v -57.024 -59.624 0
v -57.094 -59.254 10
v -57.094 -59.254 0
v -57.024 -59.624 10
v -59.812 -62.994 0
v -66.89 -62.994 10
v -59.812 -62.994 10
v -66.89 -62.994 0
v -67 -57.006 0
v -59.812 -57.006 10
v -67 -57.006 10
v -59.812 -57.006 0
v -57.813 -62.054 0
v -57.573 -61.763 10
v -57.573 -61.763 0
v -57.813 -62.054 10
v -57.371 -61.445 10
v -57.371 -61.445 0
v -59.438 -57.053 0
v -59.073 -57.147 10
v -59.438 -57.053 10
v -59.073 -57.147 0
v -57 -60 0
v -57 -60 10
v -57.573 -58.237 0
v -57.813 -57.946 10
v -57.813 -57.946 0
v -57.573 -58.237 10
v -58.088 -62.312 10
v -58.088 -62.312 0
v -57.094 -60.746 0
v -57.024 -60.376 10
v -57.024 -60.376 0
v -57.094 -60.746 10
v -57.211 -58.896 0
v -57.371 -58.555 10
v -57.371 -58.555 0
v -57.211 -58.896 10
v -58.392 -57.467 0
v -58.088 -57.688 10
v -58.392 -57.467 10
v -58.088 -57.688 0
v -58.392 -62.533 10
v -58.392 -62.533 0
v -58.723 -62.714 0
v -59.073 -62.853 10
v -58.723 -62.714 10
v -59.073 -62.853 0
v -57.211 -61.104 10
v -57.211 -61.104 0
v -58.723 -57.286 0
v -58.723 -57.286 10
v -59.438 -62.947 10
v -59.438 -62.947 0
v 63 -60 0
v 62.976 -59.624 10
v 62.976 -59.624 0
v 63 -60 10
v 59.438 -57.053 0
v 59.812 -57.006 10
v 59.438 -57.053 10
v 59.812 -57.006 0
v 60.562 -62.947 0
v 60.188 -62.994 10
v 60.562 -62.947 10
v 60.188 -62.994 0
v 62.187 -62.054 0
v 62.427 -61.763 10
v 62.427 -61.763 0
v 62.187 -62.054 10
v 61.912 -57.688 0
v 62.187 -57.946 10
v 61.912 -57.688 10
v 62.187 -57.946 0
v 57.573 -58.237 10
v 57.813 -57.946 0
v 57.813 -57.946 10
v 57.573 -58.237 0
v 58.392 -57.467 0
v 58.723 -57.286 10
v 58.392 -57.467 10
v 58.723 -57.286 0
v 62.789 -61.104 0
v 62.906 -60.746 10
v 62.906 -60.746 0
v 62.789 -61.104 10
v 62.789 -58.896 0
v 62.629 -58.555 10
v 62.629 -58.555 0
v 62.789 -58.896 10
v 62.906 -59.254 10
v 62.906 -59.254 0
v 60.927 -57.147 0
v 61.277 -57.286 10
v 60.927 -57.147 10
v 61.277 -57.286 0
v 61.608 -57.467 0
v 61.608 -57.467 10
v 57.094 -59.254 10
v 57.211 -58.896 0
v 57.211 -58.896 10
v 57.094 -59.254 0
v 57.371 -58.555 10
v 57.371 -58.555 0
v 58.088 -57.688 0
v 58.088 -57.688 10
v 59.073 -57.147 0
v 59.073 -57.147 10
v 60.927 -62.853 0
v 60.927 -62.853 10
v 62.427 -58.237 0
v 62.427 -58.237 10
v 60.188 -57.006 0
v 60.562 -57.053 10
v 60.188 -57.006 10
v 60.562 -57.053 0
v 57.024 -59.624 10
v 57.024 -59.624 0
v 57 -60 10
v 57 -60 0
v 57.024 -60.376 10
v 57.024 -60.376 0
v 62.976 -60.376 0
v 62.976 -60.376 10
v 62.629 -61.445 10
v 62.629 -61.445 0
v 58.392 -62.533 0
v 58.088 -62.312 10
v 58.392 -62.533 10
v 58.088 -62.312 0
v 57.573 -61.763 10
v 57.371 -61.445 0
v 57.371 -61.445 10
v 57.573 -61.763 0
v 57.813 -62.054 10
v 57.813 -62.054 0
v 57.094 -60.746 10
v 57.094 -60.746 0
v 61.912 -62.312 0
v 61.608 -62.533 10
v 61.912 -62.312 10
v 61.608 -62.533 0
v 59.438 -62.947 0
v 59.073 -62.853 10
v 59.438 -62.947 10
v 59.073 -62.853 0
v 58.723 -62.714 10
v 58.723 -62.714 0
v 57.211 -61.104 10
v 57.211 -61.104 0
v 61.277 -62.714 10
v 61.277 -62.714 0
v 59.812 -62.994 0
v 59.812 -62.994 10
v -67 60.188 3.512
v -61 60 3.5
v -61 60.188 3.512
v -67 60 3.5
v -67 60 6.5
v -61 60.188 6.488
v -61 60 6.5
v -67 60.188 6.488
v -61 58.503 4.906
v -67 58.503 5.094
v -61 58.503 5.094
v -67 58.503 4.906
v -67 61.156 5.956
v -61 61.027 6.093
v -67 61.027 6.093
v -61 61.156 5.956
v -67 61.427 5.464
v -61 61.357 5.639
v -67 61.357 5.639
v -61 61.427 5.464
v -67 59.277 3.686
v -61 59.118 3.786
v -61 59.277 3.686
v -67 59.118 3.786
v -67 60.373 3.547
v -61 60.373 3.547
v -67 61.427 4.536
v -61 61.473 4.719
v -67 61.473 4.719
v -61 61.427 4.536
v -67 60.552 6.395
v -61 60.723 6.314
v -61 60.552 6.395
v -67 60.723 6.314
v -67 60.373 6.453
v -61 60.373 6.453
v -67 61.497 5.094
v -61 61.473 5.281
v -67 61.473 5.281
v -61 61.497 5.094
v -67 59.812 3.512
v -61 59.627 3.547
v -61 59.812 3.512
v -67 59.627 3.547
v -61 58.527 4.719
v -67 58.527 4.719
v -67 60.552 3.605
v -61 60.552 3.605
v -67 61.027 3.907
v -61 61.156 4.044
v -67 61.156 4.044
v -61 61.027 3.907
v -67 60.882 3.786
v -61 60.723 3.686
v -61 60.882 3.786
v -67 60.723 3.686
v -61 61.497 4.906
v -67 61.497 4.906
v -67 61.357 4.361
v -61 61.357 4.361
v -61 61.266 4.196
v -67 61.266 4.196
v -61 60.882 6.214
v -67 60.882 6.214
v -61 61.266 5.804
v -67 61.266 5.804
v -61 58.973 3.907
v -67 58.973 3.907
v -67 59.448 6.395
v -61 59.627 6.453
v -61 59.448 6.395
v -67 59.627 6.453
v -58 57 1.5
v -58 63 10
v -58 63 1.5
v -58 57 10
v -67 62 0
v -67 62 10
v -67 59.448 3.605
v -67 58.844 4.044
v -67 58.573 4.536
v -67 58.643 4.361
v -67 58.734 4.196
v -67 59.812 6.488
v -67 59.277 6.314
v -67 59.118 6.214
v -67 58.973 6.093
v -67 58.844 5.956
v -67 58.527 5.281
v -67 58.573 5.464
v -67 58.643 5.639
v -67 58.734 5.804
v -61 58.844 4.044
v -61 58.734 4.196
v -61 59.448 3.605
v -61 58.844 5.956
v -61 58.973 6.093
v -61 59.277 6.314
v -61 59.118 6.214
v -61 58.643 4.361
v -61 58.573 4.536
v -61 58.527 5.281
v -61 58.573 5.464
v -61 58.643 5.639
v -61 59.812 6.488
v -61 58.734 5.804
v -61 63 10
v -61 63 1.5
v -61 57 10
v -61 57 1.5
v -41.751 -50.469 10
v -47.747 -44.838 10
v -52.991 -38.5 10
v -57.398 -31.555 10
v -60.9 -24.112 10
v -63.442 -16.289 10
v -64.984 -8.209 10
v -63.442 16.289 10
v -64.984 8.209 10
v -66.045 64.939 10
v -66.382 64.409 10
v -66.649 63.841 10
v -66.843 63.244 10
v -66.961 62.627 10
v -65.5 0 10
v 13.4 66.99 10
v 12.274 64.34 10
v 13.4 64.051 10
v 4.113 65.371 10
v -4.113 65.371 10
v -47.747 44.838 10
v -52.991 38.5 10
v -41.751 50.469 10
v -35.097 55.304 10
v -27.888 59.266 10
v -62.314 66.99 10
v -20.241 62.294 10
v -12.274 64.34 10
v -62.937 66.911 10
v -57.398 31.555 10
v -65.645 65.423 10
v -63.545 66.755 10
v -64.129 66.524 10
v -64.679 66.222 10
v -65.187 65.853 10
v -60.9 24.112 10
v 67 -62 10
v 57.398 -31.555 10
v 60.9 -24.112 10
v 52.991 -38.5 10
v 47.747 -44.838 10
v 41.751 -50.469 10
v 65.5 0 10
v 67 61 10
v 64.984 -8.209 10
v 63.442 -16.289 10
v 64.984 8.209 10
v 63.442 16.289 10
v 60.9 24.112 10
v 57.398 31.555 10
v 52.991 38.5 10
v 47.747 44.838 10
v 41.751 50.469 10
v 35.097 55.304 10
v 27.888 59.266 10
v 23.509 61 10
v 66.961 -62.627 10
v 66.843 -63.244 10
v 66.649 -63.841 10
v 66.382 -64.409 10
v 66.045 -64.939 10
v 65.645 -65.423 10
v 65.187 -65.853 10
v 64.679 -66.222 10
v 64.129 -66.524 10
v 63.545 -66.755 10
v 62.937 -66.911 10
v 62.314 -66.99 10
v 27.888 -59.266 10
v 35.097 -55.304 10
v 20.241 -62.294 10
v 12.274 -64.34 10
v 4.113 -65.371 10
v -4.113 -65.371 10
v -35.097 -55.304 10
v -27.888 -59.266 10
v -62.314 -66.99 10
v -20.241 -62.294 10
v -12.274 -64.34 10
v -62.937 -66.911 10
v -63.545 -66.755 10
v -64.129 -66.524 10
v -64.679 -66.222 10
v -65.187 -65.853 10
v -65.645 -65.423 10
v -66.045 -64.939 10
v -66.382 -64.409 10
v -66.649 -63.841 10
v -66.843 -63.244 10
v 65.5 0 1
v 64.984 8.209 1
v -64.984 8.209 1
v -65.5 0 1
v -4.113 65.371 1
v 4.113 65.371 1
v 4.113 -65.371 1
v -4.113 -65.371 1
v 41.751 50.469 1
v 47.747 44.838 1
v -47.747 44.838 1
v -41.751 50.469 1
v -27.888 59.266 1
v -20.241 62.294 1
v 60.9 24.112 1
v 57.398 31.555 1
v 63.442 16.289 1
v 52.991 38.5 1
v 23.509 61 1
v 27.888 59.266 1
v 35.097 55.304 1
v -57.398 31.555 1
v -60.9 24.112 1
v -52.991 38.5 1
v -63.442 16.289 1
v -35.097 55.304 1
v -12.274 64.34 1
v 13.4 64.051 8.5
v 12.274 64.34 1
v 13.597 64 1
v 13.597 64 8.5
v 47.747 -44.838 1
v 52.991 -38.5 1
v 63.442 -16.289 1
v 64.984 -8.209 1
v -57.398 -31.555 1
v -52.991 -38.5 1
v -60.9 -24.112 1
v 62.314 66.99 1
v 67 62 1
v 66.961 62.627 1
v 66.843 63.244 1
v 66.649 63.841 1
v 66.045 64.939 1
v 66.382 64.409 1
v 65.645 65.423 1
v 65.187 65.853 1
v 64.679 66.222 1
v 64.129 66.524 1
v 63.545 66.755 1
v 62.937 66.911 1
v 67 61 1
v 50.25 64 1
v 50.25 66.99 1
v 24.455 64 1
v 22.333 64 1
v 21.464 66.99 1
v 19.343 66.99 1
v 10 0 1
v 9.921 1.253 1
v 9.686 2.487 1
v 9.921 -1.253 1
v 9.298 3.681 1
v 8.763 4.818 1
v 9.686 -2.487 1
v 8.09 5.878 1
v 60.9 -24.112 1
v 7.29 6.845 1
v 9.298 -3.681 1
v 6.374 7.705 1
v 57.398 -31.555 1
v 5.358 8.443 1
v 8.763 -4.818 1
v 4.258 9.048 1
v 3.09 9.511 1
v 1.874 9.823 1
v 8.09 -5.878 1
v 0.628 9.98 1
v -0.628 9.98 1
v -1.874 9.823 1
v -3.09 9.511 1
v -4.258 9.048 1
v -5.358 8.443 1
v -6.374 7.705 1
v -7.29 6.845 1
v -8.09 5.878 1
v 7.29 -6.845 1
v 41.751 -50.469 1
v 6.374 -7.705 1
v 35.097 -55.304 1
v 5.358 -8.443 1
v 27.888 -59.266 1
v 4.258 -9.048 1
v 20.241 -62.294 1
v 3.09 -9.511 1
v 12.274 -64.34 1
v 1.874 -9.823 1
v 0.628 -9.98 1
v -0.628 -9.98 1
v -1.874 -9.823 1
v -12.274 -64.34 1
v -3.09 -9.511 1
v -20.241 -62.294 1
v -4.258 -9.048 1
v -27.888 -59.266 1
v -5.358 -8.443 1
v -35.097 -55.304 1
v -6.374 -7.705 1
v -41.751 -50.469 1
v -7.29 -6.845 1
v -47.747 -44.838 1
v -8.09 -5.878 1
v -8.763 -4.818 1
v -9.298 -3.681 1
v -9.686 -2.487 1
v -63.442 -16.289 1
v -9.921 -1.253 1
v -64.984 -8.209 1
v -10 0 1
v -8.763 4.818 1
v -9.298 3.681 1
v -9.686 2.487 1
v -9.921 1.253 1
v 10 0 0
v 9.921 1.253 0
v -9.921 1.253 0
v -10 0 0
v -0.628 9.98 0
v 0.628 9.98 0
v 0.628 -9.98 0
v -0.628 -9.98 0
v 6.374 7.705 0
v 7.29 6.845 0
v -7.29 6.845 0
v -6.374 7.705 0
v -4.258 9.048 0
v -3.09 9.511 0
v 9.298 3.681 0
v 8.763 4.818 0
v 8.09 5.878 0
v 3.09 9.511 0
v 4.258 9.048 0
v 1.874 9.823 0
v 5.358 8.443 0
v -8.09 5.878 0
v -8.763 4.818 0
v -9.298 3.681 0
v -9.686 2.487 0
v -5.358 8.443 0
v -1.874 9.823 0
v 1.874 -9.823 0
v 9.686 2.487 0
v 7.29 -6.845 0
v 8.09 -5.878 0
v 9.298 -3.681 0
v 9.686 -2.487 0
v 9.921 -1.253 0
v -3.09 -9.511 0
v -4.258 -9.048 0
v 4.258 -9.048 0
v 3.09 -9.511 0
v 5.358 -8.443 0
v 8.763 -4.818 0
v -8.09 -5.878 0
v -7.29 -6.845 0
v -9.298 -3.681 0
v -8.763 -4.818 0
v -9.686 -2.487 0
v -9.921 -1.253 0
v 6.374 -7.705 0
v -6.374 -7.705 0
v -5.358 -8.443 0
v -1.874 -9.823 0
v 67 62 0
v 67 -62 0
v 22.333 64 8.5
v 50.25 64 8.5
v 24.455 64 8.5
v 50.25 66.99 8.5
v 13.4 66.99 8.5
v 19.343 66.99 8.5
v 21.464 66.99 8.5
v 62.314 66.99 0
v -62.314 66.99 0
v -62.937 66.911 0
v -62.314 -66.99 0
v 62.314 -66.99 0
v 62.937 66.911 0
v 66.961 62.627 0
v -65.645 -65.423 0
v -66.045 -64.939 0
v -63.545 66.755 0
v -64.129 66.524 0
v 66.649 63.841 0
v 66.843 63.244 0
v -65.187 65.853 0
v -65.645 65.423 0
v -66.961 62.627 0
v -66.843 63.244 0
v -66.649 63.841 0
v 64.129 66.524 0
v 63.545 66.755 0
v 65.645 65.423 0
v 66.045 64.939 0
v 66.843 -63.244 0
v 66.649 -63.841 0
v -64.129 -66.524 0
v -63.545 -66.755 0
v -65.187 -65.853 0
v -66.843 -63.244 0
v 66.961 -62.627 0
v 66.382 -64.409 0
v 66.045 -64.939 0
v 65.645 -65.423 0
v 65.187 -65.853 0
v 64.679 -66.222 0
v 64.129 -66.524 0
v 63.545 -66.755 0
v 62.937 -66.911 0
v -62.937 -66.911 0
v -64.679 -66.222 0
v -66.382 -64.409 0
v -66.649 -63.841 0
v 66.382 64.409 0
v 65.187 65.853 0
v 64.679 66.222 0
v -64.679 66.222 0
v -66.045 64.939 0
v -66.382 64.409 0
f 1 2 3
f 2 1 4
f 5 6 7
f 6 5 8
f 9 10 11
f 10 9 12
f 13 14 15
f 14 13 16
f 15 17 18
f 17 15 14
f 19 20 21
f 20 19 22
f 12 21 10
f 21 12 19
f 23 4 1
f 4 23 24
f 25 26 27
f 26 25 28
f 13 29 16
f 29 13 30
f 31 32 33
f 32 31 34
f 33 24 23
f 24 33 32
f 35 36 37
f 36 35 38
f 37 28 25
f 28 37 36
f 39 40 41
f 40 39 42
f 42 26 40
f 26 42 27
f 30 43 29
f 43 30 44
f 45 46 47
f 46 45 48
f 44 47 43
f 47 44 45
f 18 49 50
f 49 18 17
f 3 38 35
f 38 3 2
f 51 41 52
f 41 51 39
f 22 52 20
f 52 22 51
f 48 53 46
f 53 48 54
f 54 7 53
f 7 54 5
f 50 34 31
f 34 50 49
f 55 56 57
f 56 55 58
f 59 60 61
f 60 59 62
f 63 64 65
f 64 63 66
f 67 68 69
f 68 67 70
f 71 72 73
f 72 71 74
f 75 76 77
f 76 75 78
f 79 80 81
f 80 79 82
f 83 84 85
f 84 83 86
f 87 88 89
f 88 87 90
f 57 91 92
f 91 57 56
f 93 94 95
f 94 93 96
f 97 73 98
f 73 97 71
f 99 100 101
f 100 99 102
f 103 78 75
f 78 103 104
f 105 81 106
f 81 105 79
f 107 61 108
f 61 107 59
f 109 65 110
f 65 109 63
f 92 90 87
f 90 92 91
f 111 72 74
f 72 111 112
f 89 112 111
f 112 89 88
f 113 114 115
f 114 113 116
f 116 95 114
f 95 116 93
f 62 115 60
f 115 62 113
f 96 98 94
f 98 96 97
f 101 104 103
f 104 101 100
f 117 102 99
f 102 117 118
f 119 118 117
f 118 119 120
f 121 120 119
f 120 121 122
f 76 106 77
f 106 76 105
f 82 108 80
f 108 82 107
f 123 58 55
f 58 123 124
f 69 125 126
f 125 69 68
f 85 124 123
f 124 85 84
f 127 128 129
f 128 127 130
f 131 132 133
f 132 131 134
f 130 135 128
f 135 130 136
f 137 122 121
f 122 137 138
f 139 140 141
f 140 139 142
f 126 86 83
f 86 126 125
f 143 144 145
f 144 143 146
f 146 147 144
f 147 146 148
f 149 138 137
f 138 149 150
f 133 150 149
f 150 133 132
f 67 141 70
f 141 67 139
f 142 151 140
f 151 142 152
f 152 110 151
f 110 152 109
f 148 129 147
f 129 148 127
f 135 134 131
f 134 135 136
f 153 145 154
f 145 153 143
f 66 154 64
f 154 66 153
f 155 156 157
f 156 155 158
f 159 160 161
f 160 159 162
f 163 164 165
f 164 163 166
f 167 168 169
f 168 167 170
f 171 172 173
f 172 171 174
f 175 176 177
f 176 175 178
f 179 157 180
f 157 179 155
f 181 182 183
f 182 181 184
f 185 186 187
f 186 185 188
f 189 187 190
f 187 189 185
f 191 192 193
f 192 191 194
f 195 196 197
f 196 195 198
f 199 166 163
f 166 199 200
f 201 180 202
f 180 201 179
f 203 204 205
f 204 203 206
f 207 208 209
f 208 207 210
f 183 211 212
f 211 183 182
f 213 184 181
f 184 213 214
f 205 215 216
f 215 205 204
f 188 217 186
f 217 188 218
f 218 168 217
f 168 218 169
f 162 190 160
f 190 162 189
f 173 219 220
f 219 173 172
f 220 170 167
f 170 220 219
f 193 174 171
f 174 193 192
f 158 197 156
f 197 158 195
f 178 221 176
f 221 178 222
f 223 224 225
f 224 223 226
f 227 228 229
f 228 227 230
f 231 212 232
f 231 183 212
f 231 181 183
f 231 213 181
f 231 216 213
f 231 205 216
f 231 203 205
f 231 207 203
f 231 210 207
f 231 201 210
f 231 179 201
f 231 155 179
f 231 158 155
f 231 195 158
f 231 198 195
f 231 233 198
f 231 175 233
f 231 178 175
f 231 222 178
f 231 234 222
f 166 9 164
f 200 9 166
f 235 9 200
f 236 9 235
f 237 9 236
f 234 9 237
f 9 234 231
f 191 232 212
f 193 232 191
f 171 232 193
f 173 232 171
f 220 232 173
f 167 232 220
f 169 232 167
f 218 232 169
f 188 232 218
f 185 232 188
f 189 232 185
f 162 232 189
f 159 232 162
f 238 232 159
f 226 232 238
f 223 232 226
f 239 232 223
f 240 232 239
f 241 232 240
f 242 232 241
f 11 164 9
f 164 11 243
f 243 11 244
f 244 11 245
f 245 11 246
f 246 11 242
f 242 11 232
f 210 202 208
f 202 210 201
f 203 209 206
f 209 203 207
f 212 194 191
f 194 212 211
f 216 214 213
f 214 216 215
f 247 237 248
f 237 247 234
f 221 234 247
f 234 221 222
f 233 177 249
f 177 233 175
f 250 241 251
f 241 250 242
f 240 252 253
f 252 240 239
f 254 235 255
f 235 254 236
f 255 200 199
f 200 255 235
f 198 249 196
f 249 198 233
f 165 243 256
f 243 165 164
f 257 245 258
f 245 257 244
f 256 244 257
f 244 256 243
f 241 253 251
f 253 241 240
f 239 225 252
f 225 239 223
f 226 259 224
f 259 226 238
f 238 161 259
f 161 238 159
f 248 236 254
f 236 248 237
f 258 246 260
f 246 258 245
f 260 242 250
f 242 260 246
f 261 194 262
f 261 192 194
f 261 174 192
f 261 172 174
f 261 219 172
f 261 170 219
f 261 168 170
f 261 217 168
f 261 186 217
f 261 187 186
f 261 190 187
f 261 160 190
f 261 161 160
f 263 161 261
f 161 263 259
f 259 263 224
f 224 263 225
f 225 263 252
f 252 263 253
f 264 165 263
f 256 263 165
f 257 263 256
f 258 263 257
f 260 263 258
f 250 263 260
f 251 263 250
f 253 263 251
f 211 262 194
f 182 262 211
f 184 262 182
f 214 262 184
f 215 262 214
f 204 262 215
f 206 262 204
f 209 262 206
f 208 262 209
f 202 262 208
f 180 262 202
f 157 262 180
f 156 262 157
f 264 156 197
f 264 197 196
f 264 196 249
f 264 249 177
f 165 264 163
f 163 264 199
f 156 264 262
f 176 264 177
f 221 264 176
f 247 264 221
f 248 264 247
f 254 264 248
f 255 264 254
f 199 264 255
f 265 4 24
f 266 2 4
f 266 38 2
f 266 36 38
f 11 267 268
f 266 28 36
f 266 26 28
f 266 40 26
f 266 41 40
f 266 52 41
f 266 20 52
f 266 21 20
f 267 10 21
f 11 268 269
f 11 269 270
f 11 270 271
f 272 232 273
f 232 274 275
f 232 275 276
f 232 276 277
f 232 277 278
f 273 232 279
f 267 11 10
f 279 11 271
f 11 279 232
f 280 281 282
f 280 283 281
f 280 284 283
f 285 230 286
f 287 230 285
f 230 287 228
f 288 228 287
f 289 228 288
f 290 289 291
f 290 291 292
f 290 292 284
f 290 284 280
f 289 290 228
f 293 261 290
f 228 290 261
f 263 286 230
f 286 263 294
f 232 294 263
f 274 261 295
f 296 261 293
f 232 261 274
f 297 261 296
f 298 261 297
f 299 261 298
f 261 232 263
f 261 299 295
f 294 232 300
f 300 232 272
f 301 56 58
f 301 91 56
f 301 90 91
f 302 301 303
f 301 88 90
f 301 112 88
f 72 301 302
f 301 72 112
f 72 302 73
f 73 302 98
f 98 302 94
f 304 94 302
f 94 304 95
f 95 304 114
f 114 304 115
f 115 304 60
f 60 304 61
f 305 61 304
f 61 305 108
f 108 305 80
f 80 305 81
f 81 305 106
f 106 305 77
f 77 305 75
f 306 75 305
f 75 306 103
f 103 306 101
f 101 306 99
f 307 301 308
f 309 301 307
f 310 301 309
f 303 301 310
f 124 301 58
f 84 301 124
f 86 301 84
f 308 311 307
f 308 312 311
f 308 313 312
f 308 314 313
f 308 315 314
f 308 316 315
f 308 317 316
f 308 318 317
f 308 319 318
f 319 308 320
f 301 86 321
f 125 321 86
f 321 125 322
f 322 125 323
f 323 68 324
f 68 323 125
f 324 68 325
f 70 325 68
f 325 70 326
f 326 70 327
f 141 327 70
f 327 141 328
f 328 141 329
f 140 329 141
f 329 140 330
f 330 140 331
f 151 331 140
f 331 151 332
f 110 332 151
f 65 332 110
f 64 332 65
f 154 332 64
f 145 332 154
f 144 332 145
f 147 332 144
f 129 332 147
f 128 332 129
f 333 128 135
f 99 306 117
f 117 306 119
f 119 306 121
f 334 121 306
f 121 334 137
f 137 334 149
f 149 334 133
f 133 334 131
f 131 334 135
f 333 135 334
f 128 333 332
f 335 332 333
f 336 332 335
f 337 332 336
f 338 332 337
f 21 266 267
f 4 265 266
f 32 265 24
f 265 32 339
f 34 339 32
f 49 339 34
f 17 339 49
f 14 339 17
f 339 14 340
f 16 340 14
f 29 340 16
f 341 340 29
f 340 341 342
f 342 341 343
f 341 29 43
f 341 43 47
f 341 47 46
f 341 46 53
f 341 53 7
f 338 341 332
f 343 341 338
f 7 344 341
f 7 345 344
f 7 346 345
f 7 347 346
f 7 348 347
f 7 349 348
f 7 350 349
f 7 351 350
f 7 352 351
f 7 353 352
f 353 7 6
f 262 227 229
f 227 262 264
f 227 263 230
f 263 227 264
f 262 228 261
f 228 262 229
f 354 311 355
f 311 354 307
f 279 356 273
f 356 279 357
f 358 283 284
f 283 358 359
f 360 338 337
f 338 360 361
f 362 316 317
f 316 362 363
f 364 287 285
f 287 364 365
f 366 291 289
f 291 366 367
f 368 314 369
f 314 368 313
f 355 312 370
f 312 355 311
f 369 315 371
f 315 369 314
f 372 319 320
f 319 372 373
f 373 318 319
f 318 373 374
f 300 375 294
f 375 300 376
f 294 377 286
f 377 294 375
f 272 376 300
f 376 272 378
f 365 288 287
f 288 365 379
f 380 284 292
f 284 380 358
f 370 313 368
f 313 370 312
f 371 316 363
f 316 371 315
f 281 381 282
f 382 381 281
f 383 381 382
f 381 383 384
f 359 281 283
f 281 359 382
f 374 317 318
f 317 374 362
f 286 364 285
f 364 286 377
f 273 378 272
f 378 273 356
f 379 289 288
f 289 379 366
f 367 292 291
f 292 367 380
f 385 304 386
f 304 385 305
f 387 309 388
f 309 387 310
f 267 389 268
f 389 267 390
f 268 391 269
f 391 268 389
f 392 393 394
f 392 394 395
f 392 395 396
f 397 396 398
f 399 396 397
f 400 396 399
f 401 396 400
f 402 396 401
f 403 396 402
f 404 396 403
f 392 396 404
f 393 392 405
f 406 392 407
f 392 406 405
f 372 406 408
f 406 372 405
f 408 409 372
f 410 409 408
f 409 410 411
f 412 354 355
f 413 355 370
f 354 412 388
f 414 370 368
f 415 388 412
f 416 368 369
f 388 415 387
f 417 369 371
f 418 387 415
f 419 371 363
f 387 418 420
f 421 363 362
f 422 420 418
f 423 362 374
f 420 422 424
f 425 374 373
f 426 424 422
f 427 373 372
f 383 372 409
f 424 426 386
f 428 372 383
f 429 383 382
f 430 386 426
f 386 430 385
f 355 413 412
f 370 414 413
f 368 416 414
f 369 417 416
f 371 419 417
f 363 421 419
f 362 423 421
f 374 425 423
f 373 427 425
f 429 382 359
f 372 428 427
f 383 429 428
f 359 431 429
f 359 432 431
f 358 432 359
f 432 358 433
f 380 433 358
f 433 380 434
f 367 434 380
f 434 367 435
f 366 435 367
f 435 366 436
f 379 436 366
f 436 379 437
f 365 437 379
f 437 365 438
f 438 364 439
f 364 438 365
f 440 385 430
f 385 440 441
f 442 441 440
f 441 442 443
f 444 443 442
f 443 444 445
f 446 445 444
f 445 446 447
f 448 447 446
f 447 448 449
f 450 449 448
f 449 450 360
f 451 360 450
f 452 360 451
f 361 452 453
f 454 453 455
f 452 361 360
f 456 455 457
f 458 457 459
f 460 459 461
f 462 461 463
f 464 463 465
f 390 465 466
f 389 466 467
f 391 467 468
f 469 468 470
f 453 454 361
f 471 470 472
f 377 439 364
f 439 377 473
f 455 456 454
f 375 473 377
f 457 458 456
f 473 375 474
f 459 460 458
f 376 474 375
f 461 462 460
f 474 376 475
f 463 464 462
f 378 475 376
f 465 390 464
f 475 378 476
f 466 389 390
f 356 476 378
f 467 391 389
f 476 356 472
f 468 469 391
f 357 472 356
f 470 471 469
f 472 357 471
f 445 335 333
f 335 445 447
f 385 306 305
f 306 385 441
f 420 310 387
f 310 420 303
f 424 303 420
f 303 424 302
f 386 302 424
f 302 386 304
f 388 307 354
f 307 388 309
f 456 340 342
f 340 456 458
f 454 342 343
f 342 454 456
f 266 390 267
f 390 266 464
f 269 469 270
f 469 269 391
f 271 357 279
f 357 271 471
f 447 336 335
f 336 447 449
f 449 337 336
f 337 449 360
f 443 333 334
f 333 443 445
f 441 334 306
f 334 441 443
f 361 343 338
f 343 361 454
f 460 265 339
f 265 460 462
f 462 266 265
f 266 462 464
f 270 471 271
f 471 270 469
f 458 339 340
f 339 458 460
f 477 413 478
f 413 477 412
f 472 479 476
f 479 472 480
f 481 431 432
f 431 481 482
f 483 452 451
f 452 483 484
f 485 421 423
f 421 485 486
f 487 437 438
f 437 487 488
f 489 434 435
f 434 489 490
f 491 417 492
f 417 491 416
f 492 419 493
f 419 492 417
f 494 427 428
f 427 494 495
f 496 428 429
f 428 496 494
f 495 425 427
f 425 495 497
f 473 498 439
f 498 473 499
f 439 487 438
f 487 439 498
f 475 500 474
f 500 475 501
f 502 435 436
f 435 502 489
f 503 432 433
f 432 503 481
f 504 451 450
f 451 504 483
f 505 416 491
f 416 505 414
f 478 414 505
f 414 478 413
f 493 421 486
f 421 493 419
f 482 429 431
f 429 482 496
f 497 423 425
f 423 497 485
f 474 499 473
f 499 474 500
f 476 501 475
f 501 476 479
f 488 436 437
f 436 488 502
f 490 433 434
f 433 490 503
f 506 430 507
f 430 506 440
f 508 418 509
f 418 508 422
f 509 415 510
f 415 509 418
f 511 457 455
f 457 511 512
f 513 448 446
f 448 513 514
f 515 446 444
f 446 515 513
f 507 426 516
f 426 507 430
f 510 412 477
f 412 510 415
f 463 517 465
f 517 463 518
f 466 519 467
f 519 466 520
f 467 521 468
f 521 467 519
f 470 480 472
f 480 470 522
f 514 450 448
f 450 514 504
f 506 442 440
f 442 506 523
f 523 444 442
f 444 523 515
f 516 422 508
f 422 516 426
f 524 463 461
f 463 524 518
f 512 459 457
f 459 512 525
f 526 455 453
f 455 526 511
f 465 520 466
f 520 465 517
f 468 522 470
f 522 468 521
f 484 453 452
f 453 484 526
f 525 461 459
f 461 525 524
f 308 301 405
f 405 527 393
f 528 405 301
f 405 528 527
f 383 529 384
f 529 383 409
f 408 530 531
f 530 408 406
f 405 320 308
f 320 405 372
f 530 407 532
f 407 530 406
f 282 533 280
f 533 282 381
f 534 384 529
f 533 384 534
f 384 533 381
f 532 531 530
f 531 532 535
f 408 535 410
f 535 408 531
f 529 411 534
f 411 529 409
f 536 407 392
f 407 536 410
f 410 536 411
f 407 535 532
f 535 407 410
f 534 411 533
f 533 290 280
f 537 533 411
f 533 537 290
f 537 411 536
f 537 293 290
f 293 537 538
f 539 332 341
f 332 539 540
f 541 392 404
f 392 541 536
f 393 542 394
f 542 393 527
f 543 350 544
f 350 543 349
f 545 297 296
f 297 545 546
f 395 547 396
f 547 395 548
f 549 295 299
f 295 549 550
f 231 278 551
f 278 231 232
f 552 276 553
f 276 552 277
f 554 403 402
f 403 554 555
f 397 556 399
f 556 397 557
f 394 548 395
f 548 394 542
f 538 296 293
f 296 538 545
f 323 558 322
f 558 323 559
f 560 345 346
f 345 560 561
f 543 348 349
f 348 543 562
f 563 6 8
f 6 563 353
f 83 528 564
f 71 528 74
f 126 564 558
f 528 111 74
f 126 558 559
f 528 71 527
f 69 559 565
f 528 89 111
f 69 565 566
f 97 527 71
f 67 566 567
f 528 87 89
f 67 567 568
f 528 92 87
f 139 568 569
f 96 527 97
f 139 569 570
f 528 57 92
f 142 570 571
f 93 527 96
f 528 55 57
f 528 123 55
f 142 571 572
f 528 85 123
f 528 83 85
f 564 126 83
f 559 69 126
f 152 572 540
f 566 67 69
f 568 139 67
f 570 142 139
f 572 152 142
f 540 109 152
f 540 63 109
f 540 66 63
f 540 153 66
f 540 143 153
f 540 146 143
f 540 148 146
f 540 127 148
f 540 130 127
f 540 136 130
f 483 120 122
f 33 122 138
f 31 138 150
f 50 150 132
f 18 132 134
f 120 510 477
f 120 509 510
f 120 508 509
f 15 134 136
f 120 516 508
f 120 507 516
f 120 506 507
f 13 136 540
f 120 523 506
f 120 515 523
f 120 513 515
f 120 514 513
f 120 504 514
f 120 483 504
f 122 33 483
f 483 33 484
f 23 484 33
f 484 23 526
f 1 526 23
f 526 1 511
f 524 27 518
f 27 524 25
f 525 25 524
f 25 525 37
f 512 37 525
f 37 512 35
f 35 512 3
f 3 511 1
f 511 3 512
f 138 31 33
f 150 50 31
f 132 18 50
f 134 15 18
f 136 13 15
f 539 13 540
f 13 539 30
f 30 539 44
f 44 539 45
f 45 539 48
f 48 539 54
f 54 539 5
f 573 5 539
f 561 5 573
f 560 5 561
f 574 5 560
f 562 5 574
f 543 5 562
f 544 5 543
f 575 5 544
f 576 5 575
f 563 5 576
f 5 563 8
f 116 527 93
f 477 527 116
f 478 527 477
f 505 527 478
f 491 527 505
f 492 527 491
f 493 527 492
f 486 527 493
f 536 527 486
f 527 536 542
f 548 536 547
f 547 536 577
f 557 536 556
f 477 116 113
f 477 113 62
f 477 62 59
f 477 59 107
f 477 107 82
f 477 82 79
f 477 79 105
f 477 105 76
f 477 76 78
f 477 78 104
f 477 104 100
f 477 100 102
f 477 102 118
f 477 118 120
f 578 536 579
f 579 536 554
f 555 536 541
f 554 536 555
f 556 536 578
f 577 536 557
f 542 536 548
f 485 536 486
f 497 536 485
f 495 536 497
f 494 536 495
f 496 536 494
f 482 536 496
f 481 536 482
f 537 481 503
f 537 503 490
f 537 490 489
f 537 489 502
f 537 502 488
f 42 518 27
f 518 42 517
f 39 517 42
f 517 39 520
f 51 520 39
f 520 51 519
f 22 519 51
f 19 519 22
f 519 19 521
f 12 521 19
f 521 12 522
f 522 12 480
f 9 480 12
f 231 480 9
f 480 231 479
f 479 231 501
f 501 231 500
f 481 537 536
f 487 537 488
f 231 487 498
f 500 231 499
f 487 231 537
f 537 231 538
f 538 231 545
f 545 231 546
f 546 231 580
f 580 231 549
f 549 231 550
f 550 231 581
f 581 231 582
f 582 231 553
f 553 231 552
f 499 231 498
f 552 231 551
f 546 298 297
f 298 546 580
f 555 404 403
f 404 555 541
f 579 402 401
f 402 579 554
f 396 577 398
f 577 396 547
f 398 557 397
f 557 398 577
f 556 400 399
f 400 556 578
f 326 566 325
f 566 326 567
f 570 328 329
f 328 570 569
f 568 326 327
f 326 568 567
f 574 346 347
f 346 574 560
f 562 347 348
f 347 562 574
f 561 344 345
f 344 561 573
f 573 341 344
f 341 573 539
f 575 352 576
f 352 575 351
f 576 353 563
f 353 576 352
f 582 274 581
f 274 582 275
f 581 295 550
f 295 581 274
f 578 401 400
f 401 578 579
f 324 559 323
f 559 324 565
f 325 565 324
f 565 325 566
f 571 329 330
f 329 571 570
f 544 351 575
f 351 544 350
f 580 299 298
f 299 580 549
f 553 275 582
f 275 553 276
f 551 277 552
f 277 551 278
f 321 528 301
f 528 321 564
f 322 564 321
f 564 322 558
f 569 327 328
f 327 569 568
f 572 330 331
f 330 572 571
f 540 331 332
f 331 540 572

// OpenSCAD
$fn = 50;


difference() {
	union() {
		translate(v = [0, 0, 0]) {
			rotate(a = [0, 0, 0]) {
				hull() {
					translate(v = [-62.0000000000, 62.0000000000, 0]) {
						rotate(a = [0, 0, 0]) {
							translate(v = [0, 0, 0]) {
								rotate(a = [0, 0, 0]) {
									cylinder(h = 10, r = 5);
								}
							}
						}
					}
					translate(v = [62.0000000000, 62.0000000000, 0]) {
						rotate(a = [0, 0, 0]) {
							translate(v = [0, 0, 0]) {
								rotate(a = [0, 0, 0]) {
									cylinder(h = 10, r = 5);
								}
							}
						}
					}
					translate(v = [-62.0000000000, -62.0000000000, 0]) {
						rotate(a = [0, 0, 0]) {
							translate(v = [0, 0, 0]) {
								rotate(a = [0, 0, 0]) {
									cylinder(h = 10, r = 5);
								}
							}
						}
					}
					translate(v = [62.0000000000, -62.0000000000, 0]) {
						rotate(a = [0, 0, 0]) {
							translate(v = [0, 0, 0]) {
								rotate(a = [0, 0, 0]) {
									cylinder(h = 10, r = 5);
								}
							}
						}
					}
				}
			}
		}
	}
	union() {
		translate(v = [-67.5000000000, -60.0000000000, -125]) {
			rotate(a = [0, 0, 0]) {
				hull() {
					translate(v = [7.5000000000, 0, 0]) {
						rotate(a = [0, 0, 0]) {
							translate(v = [0, 0, 0]) {
								rotate(a = [0, 0, 0]) {
									cylinder(h = 250, r = 3.0000000000);
								}
							}
						}
					}
					translate(v = [-7.5000000000, 0, 0]) {
						rotate(a = [0, 0, 0]) {
							translate(v = [0, 0, 0]) {
								rotate(a = [0, 0, 0]) {
									cylinder(h = 250, r = 3.0000000000);
								}
							}
						}
					}
				}
			}
		}
		translate(v = [60.0000000000, -60.0000000000, -125.0000000000]) {
			rotate(a = [0, 0, 0]) {
				cylinder(h = 250, r = 3.0000000000);
			}
		}
		translate(v = [-67.0000000000, 60.0000000000, 5.0000000000]) {
			rotate(a = [0, 90, 0]) {
				cylinder(h = 9, r = 1.5000000000);
			}
		}
		translate(v = [-61.0000000000, 57.0000000000, 1.5000000000]) {
			rotate(a = [0, 0, 0]) {
				cube(size = [3, 6, 8.5000000000]);
			}
		}
		translate(v = [0, 0, 1.0000000000]) {
			rotate(a = [0, 0, 0]) {
				cylinder(h = 12, r = 65.5000000000);
			}
		}
		translate(v = [0, 0, -5.0000000000]) {
			rotate(a = [0, 0, 0]) {
				cylinder(h = 10, r = 10.0000000000);
			}
		}
		translate(v = [0.0000000000, 61.0000000000, 1]) {
			rotate(a = [0, 0, 0]) {
				cube(size = [67.0000000000, 3, 12]);
			}
		}
		translate(v = [50.2500000000, 61.0000000000, 1]) {
			rotate(a = [0, 0, 0]) {
				cube(size = [16.7500000000, 6, 12]);
			}
		}
		translate(v = [13.4000000000, 61.0000000000, 8.5000000000]) {
			rotate(a = [0, 0, 0]) {
				cube(size = [53.6000000000, 6, 1.5000000000]);
			}
		}
		translate(v = [18.5833333333, 67.7500000000, 1]) {
			rotate(a = [0, 0, -45]) {
				cube(size = [7.5000000000, 1.5000000000, 12]);
			}
		}
	}
}
